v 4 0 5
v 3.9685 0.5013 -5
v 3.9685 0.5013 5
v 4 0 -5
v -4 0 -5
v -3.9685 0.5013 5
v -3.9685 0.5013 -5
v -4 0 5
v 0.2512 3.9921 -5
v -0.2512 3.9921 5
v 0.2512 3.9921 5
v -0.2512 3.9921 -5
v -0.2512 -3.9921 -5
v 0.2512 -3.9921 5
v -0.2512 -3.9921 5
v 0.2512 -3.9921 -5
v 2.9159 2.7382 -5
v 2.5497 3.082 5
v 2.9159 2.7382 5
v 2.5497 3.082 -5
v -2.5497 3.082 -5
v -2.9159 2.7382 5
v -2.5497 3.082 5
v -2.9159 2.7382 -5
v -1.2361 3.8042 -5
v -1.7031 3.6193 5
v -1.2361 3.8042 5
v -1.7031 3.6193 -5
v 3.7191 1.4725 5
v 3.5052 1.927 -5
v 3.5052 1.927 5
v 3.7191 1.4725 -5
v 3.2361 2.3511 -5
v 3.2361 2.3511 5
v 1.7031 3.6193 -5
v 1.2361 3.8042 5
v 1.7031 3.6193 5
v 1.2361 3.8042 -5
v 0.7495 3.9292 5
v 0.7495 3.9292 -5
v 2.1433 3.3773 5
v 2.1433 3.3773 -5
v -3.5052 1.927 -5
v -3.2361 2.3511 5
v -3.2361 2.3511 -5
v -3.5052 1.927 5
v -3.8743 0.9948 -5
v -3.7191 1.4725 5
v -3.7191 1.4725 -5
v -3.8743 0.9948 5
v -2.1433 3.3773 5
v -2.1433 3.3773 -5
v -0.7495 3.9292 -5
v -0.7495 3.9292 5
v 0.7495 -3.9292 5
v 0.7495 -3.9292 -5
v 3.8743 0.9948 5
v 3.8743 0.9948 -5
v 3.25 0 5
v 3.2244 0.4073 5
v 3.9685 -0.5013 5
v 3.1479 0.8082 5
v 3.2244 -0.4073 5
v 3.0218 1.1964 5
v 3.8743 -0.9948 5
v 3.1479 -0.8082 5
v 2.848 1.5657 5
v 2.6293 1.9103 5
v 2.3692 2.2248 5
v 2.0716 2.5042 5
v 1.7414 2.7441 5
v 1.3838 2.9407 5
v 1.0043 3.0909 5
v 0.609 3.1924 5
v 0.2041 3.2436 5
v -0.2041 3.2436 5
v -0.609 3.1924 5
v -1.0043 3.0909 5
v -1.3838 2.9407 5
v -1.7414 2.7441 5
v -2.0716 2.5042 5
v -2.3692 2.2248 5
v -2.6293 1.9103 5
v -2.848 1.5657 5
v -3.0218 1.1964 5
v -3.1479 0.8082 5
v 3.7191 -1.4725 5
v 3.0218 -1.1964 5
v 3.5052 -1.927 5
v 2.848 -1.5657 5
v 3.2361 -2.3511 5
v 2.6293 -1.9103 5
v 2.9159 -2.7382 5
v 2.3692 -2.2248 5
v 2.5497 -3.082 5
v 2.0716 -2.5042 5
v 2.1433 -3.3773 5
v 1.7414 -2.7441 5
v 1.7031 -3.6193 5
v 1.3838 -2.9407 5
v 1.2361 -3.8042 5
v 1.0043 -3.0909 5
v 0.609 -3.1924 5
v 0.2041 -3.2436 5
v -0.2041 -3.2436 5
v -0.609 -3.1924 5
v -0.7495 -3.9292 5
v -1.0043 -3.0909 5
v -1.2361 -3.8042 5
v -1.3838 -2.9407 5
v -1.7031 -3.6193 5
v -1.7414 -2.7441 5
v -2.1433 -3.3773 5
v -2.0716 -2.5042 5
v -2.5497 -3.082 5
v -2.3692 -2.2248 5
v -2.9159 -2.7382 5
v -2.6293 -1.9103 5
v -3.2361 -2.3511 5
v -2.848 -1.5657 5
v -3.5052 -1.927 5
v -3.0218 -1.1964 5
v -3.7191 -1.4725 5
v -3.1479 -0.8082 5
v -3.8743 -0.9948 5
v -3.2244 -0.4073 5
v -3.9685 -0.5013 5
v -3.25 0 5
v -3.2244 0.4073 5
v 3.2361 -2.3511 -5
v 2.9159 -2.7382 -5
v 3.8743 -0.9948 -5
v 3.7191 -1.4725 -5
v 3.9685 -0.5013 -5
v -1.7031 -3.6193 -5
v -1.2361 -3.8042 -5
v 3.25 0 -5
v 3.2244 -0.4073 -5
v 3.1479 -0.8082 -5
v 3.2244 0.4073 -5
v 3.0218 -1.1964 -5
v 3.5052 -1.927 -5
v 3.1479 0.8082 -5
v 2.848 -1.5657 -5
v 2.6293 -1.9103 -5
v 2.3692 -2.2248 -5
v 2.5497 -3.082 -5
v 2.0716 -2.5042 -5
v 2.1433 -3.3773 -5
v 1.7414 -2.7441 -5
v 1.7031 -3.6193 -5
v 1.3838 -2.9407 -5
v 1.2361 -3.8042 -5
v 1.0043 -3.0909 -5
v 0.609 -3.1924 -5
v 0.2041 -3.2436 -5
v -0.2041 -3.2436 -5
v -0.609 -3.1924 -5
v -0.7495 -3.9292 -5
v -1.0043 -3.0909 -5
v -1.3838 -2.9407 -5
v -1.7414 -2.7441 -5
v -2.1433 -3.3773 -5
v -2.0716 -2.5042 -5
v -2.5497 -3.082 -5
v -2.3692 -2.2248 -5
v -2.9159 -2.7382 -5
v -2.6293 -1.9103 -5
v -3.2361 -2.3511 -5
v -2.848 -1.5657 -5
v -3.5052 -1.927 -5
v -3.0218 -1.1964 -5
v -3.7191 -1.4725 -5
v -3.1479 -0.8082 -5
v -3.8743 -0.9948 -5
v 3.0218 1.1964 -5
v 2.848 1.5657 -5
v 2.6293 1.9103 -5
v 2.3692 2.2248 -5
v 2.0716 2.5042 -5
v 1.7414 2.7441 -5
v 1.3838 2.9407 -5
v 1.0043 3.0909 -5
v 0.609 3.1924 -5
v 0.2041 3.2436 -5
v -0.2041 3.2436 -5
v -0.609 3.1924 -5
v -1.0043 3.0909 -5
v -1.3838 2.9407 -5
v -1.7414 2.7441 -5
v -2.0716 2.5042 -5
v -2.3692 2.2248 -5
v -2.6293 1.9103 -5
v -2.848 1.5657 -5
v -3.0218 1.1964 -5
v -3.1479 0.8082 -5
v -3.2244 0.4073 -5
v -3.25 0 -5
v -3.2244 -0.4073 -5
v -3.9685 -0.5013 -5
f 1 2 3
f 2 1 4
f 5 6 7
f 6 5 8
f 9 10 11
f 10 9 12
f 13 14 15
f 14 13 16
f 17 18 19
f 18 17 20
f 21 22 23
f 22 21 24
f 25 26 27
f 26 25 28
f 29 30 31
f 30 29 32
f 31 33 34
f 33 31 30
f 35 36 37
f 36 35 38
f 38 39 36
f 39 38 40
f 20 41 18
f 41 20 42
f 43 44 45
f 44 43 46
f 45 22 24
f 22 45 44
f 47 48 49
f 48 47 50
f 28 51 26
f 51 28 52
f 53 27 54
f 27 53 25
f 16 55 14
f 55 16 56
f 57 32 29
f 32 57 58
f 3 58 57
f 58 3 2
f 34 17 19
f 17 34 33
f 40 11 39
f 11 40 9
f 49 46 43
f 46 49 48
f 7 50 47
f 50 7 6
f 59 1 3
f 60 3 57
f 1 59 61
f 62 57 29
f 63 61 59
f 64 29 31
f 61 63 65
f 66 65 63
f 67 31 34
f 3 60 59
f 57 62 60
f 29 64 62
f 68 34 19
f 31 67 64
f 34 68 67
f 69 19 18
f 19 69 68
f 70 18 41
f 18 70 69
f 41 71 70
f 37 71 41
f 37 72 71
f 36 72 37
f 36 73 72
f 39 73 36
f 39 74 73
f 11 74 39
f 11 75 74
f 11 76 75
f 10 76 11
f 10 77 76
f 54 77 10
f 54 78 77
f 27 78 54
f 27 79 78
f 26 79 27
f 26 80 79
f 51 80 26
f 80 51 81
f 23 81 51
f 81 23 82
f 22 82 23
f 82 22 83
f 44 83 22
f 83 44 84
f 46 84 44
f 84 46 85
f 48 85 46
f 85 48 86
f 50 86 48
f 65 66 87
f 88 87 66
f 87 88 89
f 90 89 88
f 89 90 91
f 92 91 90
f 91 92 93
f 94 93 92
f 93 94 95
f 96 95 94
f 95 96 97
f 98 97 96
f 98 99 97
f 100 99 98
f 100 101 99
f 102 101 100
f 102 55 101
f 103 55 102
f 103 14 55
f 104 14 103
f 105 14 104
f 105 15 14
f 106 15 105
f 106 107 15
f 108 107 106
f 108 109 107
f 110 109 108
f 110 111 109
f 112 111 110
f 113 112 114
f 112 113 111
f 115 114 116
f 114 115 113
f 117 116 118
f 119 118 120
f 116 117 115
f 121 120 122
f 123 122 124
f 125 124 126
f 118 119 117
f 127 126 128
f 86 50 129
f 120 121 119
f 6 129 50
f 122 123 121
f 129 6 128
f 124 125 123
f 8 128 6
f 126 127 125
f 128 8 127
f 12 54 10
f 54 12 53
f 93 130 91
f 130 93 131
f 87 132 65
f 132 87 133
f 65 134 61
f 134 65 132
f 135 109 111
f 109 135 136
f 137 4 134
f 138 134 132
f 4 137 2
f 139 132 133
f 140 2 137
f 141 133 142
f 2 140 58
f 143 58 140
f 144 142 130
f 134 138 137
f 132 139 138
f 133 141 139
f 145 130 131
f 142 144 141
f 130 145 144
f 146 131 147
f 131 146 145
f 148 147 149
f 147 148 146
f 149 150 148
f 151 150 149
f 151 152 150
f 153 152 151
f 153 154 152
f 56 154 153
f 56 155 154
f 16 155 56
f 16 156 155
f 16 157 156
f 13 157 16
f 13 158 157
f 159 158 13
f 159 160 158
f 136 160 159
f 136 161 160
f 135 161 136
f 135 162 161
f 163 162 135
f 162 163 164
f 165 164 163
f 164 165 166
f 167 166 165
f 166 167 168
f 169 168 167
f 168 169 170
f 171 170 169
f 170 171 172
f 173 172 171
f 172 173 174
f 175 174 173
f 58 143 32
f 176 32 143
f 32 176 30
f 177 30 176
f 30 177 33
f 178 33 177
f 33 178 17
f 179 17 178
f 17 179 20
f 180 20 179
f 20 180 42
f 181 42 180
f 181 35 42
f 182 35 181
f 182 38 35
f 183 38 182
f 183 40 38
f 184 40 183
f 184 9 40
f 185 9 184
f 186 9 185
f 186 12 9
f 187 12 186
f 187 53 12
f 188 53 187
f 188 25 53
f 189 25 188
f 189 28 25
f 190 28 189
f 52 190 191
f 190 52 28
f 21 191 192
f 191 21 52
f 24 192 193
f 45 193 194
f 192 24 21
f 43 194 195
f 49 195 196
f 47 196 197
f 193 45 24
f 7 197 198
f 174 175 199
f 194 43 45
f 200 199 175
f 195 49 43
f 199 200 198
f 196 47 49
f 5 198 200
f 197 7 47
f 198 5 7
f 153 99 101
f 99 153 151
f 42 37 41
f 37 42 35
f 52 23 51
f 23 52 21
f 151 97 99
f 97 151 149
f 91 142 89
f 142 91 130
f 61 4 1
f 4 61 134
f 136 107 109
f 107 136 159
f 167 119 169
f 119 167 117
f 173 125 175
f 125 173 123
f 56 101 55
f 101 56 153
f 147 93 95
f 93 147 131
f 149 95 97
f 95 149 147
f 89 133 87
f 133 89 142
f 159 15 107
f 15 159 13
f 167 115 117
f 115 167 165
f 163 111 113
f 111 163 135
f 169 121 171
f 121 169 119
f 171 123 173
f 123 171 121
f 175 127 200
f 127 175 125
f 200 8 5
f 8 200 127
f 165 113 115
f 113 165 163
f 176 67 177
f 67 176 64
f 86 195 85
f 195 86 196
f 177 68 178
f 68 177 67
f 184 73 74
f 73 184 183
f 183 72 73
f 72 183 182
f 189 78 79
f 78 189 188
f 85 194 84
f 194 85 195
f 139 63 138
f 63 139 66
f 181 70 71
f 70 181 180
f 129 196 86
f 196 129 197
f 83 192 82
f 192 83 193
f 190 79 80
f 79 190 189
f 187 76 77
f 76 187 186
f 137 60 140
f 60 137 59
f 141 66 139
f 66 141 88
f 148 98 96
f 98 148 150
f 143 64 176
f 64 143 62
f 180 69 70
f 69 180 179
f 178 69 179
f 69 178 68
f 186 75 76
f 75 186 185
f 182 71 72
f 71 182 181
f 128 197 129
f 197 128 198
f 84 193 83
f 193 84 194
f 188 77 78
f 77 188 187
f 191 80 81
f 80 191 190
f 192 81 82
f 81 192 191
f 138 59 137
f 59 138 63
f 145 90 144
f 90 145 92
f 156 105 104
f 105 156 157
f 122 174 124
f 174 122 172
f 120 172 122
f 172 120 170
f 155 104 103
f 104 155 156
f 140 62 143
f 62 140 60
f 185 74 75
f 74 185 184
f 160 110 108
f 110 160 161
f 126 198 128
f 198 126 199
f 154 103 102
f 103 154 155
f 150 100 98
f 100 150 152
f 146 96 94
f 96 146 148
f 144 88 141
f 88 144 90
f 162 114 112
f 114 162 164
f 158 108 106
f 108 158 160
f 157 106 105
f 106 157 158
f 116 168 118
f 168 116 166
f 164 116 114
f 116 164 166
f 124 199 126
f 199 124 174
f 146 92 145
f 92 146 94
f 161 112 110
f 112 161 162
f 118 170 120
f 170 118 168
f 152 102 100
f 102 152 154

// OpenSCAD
$fn = 50;


difference() {
	union() {
		translate(v = [0, 0, -5.0000000000]) {
			cylinder(h = 10, r = 4.0000000000);
		}
	}
	union() {
		translate(v = [0, 0, -100.0000000000]) {
			cylinder(h = 200, r = 3.2500000000);
		}
	}
}
